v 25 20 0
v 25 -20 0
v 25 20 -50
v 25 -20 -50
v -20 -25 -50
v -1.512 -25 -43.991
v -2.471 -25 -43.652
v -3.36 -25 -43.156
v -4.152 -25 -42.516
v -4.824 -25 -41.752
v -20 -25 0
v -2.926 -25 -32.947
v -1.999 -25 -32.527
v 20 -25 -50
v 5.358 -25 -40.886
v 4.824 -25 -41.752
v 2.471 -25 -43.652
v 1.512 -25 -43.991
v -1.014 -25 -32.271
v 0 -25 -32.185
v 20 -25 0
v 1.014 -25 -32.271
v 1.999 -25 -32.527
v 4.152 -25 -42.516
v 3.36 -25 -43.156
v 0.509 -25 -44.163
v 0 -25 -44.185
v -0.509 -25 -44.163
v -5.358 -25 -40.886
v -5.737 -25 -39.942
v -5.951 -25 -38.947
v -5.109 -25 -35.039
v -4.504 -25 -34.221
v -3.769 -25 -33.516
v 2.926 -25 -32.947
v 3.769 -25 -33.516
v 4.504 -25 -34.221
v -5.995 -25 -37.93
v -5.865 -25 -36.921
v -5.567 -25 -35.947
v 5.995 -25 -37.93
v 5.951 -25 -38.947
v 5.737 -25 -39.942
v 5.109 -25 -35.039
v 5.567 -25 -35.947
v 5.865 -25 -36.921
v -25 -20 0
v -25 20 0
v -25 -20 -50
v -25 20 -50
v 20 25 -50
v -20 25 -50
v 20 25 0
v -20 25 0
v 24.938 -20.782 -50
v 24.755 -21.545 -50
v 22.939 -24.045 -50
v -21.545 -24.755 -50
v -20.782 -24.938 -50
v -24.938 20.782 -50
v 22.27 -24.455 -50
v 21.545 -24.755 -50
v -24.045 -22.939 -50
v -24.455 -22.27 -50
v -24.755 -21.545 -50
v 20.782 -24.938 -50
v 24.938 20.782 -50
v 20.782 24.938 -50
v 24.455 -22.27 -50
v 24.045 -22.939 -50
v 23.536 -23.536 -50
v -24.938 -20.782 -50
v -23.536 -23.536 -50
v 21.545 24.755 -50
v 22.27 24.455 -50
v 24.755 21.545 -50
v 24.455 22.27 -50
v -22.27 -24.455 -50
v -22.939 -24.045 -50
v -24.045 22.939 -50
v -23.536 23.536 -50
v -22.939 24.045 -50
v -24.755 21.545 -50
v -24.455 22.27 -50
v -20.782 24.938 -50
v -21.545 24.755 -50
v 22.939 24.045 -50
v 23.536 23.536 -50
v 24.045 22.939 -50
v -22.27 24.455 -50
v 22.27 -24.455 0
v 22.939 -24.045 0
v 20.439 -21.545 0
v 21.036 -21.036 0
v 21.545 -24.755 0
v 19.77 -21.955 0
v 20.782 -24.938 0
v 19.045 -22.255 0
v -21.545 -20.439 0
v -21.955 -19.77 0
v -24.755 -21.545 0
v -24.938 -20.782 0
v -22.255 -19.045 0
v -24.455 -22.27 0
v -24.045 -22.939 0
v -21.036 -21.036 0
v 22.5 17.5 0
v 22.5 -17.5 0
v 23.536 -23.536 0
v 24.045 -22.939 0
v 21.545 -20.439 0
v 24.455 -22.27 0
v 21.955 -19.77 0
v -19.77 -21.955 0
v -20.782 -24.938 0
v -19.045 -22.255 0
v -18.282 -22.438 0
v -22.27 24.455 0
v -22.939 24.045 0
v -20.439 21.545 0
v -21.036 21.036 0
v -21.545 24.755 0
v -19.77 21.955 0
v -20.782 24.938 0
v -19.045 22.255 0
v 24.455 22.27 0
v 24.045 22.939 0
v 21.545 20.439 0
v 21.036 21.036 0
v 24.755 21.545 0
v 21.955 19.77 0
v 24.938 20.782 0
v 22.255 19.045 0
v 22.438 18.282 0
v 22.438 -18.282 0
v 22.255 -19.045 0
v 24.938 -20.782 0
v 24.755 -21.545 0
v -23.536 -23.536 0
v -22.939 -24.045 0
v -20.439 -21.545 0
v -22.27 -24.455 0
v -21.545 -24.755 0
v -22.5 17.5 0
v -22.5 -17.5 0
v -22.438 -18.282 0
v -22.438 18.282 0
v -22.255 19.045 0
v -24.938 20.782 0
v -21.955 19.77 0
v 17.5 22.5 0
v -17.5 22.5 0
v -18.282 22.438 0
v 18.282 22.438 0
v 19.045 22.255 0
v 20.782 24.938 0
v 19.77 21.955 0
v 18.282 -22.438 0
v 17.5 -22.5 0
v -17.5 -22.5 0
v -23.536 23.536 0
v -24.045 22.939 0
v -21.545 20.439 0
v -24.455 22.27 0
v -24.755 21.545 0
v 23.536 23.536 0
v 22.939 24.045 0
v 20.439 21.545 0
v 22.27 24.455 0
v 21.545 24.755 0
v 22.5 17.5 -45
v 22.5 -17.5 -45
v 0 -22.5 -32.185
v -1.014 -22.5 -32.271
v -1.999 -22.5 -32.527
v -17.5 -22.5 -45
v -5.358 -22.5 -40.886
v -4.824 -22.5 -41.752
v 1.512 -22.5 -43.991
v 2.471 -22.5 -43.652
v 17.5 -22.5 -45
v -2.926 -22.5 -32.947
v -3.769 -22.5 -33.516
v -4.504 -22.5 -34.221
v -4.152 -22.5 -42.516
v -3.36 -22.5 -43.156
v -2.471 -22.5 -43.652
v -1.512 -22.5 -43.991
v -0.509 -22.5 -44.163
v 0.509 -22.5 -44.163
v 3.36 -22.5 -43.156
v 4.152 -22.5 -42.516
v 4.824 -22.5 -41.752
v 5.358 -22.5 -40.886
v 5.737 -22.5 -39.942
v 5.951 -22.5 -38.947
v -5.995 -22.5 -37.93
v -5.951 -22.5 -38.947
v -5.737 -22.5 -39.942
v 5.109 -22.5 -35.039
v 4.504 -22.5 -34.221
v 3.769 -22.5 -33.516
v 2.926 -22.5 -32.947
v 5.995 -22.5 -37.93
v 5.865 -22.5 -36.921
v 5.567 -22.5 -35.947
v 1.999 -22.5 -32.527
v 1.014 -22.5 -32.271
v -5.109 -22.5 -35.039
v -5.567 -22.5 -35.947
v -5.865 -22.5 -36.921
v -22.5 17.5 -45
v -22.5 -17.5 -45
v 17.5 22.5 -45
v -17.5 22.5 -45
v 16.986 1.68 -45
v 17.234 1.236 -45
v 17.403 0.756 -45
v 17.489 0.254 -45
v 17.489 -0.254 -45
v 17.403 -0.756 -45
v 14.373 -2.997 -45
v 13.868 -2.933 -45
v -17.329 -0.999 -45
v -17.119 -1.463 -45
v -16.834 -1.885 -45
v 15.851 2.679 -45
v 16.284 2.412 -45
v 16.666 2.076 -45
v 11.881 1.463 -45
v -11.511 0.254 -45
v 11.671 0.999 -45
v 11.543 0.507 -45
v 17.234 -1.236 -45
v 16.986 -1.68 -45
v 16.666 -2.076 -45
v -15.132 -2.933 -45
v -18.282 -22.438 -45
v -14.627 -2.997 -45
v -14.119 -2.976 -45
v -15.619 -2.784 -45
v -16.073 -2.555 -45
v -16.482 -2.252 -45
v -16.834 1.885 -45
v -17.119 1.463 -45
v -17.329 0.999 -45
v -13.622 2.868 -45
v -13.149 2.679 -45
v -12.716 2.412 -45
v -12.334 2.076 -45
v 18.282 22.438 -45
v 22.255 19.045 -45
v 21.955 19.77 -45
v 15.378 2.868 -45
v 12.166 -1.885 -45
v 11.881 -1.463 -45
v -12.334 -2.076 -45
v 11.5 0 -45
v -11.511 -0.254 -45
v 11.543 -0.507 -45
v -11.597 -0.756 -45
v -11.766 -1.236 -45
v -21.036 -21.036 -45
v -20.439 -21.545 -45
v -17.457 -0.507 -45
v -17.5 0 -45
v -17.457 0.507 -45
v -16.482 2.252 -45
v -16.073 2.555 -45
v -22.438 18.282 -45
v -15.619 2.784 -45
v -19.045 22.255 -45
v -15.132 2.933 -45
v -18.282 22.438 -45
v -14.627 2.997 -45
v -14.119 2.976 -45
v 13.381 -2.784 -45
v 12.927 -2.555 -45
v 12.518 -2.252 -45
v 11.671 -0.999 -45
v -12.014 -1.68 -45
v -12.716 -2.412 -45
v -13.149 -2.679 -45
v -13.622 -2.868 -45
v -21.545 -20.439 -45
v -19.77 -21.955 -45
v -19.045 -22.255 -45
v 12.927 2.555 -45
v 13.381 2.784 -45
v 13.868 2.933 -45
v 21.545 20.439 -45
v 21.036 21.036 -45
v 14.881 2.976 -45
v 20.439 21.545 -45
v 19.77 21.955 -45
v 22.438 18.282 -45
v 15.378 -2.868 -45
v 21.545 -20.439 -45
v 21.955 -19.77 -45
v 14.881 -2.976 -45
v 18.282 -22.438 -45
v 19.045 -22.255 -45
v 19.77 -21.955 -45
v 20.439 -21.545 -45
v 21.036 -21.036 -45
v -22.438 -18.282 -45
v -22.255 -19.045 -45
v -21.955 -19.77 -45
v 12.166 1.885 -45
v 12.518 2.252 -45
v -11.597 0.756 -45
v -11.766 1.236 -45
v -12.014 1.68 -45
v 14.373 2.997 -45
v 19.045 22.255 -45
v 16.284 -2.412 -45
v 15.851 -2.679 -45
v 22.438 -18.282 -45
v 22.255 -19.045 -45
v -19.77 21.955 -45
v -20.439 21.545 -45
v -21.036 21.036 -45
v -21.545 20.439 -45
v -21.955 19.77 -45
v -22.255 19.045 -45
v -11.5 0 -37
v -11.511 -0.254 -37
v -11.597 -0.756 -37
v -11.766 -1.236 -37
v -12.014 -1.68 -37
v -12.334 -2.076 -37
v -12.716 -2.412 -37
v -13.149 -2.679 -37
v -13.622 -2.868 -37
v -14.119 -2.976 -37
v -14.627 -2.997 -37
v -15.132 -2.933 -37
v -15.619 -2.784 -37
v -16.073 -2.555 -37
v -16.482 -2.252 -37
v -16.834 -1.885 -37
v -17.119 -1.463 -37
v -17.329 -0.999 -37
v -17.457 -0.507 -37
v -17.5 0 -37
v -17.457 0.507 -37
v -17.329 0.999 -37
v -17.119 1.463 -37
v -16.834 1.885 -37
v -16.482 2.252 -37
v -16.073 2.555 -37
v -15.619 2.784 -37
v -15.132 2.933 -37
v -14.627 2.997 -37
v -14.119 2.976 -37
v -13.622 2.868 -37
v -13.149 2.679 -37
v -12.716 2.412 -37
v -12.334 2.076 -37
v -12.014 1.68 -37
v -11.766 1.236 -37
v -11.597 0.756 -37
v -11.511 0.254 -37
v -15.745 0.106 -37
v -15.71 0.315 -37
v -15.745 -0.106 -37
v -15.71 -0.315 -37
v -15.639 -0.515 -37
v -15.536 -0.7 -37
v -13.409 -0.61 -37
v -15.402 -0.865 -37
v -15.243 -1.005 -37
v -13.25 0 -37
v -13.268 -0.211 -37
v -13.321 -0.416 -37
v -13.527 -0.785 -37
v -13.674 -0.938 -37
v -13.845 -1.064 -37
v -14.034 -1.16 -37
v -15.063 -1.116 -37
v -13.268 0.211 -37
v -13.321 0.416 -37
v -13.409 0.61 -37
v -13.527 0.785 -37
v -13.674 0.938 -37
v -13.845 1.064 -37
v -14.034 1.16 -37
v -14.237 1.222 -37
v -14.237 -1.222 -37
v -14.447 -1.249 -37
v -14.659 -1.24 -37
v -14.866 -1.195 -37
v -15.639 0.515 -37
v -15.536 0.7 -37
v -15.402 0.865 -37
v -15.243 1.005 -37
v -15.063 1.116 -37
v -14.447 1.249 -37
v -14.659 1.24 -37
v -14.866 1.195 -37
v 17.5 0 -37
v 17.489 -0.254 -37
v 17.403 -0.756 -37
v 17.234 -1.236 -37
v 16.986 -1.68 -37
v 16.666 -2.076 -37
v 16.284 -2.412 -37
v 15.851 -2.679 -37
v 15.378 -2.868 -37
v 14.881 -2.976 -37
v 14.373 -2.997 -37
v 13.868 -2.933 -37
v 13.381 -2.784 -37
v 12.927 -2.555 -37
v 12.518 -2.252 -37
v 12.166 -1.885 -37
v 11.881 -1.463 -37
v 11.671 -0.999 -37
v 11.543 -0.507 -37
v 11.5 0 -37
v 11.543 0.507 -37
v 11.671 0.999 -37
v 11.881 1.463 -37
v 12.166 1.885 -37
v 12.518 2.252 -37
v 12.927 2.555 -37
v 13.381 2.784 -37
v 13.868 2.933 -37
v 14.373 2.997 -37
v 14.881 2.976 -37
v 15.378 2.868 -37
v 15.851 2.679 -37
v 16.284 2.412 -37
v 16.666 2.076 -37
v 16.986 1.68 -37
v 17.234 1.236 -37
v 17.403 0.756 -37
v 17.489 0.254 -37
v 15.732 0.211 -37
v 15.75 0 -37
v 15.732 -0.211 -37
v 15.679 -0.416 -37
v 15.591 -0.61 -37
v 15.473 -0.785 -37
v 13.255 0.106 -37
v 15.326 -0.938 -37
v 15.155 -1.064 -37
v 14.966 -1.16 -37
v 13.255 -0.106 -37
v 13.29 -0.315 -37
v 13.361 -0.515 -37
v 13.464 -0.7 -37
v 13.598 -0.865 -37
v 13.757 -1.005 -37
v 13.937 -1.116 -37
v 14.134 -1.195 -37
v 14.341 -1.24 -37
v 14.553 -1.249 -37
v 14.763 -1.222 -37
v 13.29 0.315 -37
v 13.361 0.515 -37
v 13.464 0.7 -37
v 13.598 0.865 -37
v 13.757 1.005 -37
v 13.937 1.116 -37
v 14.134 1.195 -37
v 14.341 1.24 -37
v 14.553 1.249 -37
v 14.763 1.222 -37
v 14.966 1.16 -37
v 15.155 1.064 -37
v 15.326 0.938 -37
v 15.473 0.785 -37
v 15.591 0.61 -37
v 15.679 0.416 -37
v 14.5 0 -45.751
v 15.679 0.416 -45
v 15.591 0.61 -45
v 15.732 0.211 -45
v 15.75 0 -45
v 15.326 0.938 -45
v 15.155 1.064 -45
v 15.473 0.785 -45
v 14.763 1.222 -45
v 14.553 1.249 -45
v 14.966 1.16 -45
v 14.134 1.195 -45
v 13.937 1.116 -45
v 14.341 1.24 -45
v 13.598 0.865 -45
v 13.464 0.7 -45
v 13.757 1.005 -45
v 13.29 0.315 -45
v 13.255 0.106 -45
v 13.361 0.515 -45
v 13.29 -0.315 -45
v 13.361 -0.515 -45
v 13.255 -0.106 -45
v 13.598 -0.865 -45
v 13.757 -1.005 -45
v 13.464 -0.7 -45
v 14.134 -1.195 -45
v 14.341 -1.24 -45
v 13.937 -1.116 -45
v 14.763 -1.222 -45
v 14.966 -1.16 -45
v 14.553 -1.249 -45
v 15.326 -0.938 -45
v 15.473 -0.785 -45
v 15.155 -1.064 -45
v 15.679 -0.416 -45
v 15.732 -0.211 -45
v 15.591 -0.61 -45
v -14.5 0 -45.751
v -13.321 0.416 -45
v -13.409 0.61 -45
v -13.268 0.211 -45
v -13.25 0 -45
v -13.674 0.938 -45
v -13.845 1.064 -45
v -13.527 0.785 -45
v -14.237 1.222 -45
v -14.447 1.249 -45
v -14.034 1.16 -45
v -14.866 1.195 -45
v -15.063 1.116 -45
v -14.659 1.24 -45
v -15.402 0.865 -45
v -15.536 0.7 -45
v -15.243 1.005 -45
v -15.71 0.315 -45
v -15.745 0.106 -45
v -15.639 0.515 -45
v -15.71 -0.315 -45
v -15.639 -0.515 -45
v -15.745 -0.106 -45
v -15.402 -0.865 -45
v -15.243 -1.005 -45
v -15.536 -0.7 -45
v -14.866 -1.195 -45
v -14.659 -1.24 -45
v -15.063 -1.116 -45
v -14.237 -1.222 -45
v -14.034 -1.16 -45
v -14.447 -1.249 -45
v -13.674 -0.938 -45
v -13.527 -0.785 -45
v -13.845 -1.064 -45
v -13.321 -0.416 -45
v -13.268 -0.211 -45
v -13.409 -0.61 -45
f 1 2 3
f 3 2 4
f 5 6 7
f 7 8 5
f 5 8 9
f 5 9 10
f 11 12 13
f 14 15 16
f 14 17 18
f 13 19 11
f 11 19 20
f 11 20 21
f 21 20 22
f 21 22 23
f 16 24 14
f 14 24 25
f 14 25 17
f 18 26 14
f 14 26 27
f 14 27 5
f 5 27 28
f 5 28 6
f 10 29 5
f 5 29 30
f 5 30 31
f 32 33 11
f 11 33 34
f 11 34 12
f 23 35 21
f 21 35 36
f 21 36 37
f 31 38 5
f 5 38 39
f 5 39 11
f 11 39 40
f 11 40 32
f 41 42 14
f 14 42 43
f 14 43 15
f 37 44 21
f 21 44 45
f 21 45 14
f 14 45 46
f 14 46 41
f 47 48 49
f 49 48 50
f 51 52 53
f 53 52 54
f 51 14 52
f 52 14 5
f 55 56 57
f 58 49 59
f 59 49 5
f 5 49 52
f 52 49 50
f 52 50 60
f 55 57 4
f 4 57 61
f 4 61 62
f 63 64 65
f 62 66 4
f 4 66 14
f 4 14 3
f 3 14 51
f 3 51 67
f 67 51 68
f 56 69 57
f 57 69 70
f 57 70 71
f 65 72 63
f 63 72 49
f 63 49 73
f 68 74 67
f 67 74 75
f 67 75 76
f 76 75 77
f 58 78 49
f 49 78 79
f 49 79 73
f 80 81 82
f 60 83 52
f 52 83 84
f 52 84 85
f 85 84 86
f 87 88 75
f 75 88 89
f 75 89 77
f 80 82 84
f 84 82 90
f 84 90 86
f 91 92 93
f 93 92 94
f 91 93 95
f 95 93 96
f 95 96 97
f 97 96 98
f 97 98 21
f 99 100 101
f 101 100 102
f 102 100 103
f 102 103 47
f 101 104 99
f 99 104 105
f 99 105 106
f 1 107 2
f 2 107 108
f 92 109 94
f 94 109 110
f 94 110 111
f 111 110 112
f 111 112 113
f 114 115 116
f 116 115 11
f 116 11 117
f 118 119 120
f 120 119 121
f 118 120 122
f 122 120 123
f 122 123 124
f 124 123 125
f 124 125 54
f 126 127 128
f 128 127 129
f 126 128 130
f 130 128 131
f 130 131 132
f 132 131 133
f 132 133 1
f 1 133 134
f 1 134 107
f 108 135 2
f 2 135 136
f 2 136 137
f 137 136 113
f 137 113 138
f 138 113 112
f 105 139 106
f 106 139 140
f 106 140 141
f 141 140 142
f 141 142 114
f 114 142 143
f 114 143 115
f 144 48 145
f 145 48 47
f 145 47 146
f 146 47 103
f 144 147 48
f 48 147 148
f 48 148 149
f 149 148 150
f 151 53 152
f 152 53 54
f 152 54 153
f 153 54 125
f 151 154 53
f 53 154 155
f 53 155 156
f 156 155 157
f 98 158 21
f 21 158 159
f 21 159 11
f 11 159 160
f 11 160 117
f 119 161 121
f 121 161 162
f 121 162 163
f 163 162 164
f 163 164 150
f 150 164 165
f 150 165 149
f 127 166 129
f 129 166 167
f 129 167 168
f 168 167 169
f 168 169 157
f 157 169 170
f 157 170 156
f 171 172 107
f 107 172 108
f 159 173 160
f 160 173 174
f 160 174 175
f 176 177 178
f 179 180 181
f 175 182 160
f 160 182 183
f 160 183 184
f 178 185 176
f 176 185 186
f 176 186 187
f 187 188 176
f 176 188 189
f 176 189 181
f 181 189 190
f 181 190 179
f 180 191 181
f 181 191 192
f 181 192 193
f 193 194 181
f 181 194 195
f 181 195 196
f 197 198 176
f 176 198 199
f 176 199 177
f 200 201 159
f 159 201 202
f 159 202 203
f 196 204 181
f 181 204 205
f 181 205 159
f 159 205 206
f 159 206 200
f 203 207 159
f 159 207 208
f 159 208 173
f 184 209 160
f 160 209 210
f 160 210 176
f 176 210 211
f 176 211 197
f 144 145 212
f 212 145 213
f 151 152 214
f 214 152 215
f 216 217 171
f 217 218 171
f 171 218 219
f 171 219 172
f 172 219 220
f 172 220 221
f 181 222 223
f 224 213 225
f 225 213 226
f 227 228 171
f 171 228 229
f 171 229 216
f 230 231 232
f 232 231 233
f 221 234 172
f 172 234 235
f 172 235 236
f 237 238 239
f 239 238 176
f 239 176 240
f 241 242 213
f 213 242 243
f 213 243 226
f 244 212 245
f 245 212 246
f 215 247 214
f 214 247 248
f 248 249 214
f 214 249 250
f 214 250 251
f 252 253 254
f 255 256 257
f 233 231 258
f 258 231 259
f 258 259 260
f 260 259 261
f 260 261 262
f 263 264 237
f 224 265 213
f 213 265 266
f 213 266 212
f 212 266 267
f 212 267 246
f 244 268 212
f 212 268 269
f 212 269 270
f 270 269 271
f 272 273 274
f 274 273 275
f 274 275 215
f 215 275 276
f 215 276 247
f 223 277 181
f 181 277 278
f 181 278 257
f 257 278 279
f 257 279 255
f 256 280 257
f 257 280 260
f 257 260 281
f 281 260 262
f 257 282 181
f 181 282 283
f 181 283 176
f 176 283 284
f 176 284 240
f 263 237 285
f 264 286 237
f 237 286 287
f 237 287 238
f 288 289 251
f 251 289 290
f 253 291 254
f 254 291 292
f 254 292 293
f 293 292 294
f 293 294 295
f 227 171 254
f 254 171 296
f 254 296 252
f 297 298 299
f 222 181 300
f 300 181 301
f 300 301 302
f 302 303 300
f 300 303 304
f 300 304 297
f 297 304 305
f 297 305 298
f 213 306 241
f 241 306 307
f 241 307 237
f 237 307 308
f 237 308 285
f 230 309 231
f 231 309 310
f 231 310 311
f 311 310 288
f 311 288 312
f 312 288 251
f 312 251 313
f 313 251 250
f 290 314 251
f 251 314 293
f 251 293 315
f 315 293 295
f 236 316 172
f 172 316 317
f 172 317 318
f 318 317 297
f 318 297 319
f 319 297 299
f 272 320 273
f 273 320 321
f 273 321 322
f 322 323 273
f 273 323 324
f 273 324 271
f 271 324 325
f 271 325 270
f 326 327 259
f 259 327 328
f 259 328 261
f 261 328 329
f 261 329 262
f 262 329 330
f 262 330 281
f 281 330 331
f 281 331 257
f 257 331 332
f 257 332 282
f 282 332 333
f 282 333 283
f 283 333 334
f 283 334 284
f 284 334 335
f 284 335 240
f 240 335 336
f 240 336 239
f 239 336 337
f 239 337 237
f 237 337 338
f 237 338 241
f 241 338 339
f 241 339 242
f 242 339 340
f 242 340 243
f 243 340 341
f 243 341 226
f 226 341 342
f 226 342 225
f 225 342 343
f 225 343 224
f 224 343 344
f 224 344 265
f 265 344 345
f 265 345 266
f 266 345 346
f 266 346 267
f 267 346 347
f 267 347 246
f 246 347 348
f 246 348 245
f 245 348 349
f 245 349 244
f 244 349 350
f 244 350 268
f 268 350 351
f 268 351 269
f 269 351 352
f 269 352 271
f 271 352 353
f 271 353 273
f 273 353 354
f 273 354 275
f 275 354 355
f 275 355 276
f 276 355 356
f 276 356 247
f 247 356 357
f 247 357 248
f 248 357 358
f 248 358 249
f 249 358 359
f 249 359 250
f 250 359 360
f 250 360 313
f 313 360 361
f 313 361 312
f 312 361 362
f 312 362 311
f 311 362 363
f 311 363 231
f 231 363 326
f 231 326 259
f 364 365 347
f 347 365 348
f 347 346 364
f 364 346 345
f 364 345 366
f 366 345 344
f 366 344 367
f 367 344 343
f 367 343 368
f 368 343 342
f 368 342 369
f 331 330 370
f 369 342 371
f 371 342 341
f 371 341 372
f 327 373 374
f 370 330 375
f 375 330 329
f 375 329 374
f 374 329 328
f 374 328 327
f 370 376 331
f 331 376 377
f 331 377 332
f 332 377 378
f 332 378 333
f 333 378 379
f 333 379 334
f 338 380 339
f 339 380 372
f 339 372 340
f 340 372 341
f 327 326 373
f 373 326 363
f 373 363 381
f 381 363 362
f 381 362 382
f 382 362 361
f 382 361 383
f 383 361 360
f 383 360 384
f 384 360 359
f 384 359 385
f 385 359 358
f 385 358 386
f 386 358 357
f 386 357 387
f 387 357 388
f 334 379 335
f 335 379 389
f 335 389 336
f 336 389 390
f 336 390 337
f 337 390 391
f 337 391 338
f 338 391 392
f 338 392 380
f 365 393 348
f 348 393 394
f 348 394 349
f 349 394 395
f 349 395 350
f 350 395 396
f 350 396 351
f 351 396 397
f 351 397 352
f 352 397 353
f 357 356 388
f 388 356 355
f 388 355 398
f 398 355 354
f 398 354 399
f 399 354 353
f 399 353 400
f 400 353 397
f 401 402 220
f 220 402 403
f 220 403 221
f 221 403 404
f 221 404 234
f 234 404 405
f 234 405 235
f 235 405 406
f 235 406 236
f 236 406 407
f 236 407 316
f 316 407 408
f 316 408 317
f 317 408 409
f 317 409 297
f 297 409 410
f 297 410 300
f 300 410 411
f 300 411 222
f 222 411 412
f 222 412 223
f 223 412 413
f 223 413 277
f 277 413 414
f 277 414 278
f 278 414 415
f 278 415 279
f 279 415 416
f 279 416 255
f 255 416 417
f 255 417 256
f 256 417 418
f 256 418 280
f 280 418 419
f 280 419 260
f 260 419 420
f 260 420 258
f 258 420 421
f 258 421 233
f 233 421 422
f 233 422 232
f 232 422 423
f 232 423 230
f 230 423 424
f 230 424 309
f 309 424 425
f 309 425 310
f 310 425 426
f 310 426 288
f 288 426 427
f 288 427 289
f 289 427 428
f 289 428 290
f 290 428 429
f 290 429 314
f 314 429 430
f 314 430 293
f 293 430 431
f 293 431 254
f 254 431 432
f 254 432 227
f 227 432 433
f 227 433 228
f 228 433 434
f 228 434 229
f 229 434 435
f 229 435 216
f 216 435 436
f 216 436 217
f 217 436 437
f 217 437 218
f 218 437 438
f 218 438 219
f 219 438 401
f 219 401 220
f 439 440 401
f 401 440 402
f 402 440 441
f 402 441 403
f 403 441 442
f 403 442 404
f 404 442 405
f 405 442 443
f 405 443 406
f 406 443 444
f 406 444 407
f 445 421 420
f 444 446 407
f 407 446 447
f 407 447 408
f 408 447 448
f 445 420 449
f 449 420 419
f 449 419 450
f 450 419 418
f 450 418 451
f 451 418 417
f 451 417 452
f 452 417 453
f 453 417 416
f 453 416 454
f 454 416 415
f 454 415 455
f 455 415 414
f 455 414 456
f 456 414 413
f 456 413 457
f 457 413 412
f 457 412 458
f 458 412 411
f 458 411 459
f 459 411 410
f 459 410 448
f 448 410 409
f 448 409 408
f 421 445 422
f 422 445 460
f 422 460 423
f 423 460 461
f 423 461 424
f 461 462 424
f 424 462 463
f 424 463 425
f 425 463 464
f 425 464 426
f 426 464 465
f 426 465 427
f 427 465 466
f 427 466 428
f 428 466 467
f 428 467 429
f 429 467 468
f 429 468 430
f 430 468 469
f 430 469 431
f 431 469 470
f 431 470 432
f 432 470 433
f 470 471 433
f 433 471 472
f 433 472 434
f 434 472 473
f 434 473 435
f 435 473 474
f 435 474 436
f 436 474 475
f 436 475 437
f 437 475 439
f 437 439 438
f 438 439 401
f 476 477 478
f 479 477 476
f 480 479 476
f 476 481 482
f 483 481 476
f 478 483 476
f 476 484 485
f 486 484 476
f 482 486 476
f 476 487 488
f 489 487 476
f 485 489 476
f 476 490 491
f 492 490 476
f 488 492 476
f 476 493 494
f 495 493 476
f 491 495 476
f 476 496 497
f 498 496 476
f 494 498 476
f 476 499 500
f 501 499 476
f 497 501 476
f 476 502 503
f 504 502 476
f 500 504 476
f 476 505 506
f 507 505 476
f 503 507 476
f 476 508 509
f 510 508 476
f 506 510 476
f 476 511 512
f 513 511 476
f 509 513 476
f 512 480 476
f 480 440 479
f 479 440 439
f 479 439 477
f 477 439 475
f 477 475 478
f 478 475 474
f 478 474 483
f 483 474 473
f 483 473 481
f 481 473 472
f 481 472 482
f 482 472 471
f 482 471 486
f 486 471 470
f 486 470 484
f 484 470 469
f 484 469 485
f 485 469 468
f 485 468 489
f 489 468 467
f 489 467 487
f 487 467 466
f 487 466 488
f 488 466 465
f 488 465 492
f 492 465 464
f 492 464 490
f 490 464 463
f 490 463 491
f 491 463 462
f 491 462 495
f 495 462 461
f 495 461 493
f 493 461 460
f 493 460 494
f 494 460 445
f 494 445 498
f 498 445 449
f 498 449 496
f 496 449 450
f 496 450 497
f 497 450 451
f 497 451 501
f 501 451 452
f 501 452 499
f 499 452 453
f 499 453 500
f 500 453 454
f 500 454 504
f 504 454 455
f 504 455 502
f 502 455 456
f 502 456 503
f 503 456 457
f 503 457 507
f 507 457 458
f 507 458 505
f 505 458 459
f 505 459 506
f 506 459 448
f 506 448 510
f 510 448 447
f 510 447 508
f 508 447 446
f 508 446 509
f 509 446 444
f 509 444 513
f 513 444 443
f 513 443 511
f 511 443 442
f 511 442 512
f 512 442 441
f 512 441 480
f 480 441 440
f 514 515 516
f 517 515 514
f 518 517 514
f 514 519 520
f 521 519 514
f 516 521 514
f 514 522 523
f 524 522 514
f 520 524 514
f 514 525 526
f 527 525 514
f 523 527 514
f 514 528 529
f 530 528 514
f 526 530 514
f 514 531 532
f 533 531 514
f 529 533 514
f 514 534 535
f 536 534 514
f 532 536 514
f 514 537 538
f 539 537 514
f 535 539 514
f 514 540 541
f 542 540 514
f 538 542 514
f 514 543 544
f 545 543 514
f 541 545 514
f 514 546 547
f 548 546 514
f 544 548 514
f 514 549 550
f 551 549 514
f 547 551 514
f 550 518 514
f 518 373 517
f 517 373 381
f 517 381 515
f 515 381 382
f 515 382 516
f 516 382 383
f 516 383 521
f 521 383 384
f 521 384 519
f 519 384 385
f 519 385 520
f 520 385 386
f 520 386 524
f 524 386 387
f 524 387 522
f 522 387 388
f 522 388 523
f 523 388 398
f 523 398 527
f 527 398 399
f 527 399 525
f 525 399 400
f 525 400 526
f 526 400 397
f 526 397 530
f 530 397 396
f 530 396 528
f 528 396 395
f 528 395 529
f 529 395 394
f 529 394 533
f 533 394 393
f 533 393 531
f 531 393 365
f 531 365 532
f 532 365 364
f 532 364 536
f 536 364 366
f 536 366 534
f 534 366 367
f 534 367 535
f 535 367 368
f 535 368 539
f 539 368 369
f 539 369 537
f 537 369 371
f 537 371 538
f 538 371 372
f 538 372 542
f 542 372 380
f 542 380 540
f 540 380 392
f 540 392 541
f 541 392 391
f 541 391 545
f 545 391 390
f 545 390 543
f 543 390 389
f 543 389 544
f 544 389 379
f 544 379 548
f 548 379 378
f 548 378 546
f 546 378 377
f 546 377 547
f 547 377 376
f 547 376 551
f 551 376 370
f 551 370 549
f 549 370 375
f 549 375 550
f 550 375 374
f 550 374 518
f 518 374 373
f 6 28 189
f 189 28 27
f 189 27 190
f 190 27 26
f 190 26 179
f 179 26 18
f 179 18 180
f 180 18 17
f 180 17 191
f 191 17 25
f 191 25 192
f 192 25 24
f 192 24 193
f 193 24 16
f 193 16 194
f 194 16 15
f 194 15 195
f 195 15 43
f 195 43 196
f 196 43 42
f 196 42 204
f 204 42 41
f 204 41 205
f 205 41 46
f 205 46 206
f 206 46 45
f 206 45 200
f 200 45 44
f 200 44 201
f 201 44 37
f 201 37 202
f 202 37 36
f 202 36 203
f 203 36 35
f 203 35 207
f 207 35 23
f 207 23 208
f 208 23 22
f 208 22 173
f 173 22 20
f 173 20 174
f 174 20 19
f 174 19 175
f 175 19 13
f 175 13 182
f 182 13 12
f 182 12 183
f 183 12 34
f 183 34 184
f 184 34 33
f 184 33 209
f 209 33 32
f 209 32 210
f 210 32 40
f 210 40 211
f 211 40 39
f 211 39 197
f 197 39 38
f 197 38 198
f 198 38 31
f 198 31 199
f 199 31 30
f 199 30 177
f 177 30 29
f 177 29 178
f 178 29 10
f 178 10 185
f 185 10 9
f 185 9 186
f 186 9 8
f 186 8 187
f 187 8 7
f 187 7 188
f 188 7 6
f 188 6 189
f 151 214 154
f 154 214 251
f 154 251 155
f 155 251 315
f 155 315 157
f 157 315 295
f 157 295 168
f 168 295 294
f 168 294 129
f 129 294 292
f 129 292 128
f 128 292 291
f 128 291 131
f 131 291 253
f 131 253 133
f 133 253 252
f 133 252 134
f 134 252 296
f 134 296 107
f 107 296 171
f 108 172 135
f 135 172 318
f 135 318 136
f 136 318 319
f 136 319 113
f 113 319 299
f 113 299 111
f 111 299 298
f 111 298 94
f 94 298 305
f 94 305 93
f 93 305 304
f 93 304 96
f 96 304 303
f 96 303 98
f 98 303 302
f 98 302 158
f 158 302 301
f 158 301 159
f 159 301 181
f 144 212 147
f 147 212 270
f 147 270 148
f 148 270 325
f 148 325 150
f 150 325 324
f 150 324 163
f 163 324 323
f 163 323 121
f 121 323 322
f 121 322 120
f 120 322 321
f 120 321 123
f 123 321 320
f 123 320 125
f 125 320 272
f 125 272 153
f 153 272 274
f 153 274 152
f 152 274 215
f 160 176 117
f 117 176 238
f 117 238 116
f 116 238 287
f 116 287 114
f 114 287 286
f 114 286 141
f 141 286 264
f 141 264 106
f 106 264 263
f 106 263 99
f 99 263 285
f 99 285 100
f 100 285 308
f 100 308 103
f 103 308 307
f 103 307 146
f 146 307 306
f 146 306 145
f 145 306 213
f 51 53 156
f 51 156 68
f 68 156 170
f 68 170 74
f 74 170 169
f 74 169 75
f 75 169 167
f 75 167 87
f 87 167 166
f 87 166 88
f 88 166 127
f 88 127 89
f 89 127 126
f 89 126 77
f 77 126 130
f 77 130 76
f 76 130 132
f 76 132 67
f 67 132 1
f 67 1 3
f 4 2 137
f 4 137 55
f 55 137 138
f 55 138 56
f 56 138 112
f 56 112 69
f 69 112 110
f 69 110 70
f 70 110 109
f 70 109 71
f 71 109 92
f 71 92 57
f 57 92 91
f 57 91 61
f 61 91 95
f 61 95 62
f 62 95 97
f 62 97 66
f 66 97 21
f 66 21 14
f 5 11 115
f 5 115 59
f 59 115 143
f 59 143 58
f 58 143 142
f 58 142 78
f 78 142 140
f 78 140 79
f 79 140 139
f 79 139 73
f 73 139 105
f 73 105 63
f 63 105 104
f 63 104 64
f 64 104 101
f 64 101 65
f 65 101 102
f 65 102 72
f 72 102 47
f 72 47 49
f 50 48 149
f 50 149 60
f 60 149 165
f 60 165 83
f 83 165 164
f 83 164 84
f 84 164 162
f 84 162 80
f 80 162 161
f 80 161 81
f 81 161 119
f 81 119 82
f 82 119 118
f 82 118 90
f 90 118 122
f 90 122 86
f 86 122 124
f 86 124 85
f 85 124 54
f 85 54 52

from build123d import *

# Parameters (mm, degrees)
SKETCH1_W                       = 50
SKETCH1_H                       = 50
BOSS_EXTRUDE1_DEPTH             = 50
SKETCH3_W                       = 45
SKETCH3_H                       = 45
CUT_EXTRUDE4_DEPTH              = 45
SKETCH5_R                       = 3
BOSS_EXTRUDE2_DEPTH             = 8
TAP_DRILL_FOR_M3X0_5_TAP2_D     = 2.5
TAP_DRILL_FOR_M3X0_5_TAP2_DEPTH = 8
TAP_DRILL_FOR_M3X0_5_TAP2_TIP   = 0.751075774
SKETCH10_R                      = 6
CUT_EXTRUDE5_DEPTH              = 5
FILLET2_R                       = 5


with BuildPart() as part:
    # Sketch1 → Boss-Extrude1 (new body)
    with BuildSketch(Plane.XY):
        Rectangle(SKETCH1_W, SKETCH1_H)
    extrude(amount=-BOSS_EXTRUDE1_DEPTH)

    # Sketch3 → Cut-Extrude4 (cut)
    with BuildSketch(Plane.XY):
        Rectangle(SKETCH3_W, SKETCH3_H)
    extrude(amount=-CUT_EXTRUDE4_DEPTH, mode=Mode.SUBTRACT)

    # Sketch5 → Boss-Extrude2 (add)
    with BuildSketch(Plane.XY.offset(-45)):
        with Locations((-14.5, 0)):
            Circle(SKETCH5_R)
        with Locations((14.5, 0)):
            Circle(SKETCH5_R)
    extrude(amount=BOSS_EXTRUDE2_DEPTH)

    # Tap Drill for M3x0.5 Tap2
    with Locations(Plane.XY.offset(-37)):
        with Locations((-14.5, 0), (14.5, 0)):
            Hole(TAP_DRILL_FOR_M3X0_5_TAP2_D / 2, depth=TAP_DRILL_FOR_M3X0_5_TAP2_DEPTH)
            with Locations((0, 0, -(TAP_DRILL_FOR_M3X0_5_TAP2_DEPTH + TAP_DRILL_FOR_M3X0_5_TAP2_TIP / 2))):  # 118° drill point
                Cone(0, TAP_DRILL_FOR_M3X0_5_TAP2_D / 2, TAP_DRILL_FOR_M3X0_5_TAP2_TIP, mode=Mode.SUBTRACT)

    # Sketch10 → Cut-Extrude5 (cut)
    with BuildSketch(Plane(origin=(0, -22.5, 0), x_dir=(1, 0, 0), z_dir=(0, 1, 0))):
        with Locations((0, 38.184638056)):
            Circle(SKETCH10_R)
    extrude(amount=-CUT_EXTRUDE5_DEPTH, mode=Mode.SUBTRACT)

    # Fillet2
    fillet2_edges = [part.edges().sort_by_distance(p)[0] for p in [
        (22.5, 22.5, -22.5),
        (22.5, -22.5, -22.5),
        (-22.5, -22.5, -22.5),
        (-22.5, 22.5, -22.5),
        (25, -25, -25),
        (-25, -25, -25),
        (-25, 25, -25),
        (25, 25, -25),
    ]]
    fillet(fillet2_edges, radius=FILLET2_R)


solid = part.part
